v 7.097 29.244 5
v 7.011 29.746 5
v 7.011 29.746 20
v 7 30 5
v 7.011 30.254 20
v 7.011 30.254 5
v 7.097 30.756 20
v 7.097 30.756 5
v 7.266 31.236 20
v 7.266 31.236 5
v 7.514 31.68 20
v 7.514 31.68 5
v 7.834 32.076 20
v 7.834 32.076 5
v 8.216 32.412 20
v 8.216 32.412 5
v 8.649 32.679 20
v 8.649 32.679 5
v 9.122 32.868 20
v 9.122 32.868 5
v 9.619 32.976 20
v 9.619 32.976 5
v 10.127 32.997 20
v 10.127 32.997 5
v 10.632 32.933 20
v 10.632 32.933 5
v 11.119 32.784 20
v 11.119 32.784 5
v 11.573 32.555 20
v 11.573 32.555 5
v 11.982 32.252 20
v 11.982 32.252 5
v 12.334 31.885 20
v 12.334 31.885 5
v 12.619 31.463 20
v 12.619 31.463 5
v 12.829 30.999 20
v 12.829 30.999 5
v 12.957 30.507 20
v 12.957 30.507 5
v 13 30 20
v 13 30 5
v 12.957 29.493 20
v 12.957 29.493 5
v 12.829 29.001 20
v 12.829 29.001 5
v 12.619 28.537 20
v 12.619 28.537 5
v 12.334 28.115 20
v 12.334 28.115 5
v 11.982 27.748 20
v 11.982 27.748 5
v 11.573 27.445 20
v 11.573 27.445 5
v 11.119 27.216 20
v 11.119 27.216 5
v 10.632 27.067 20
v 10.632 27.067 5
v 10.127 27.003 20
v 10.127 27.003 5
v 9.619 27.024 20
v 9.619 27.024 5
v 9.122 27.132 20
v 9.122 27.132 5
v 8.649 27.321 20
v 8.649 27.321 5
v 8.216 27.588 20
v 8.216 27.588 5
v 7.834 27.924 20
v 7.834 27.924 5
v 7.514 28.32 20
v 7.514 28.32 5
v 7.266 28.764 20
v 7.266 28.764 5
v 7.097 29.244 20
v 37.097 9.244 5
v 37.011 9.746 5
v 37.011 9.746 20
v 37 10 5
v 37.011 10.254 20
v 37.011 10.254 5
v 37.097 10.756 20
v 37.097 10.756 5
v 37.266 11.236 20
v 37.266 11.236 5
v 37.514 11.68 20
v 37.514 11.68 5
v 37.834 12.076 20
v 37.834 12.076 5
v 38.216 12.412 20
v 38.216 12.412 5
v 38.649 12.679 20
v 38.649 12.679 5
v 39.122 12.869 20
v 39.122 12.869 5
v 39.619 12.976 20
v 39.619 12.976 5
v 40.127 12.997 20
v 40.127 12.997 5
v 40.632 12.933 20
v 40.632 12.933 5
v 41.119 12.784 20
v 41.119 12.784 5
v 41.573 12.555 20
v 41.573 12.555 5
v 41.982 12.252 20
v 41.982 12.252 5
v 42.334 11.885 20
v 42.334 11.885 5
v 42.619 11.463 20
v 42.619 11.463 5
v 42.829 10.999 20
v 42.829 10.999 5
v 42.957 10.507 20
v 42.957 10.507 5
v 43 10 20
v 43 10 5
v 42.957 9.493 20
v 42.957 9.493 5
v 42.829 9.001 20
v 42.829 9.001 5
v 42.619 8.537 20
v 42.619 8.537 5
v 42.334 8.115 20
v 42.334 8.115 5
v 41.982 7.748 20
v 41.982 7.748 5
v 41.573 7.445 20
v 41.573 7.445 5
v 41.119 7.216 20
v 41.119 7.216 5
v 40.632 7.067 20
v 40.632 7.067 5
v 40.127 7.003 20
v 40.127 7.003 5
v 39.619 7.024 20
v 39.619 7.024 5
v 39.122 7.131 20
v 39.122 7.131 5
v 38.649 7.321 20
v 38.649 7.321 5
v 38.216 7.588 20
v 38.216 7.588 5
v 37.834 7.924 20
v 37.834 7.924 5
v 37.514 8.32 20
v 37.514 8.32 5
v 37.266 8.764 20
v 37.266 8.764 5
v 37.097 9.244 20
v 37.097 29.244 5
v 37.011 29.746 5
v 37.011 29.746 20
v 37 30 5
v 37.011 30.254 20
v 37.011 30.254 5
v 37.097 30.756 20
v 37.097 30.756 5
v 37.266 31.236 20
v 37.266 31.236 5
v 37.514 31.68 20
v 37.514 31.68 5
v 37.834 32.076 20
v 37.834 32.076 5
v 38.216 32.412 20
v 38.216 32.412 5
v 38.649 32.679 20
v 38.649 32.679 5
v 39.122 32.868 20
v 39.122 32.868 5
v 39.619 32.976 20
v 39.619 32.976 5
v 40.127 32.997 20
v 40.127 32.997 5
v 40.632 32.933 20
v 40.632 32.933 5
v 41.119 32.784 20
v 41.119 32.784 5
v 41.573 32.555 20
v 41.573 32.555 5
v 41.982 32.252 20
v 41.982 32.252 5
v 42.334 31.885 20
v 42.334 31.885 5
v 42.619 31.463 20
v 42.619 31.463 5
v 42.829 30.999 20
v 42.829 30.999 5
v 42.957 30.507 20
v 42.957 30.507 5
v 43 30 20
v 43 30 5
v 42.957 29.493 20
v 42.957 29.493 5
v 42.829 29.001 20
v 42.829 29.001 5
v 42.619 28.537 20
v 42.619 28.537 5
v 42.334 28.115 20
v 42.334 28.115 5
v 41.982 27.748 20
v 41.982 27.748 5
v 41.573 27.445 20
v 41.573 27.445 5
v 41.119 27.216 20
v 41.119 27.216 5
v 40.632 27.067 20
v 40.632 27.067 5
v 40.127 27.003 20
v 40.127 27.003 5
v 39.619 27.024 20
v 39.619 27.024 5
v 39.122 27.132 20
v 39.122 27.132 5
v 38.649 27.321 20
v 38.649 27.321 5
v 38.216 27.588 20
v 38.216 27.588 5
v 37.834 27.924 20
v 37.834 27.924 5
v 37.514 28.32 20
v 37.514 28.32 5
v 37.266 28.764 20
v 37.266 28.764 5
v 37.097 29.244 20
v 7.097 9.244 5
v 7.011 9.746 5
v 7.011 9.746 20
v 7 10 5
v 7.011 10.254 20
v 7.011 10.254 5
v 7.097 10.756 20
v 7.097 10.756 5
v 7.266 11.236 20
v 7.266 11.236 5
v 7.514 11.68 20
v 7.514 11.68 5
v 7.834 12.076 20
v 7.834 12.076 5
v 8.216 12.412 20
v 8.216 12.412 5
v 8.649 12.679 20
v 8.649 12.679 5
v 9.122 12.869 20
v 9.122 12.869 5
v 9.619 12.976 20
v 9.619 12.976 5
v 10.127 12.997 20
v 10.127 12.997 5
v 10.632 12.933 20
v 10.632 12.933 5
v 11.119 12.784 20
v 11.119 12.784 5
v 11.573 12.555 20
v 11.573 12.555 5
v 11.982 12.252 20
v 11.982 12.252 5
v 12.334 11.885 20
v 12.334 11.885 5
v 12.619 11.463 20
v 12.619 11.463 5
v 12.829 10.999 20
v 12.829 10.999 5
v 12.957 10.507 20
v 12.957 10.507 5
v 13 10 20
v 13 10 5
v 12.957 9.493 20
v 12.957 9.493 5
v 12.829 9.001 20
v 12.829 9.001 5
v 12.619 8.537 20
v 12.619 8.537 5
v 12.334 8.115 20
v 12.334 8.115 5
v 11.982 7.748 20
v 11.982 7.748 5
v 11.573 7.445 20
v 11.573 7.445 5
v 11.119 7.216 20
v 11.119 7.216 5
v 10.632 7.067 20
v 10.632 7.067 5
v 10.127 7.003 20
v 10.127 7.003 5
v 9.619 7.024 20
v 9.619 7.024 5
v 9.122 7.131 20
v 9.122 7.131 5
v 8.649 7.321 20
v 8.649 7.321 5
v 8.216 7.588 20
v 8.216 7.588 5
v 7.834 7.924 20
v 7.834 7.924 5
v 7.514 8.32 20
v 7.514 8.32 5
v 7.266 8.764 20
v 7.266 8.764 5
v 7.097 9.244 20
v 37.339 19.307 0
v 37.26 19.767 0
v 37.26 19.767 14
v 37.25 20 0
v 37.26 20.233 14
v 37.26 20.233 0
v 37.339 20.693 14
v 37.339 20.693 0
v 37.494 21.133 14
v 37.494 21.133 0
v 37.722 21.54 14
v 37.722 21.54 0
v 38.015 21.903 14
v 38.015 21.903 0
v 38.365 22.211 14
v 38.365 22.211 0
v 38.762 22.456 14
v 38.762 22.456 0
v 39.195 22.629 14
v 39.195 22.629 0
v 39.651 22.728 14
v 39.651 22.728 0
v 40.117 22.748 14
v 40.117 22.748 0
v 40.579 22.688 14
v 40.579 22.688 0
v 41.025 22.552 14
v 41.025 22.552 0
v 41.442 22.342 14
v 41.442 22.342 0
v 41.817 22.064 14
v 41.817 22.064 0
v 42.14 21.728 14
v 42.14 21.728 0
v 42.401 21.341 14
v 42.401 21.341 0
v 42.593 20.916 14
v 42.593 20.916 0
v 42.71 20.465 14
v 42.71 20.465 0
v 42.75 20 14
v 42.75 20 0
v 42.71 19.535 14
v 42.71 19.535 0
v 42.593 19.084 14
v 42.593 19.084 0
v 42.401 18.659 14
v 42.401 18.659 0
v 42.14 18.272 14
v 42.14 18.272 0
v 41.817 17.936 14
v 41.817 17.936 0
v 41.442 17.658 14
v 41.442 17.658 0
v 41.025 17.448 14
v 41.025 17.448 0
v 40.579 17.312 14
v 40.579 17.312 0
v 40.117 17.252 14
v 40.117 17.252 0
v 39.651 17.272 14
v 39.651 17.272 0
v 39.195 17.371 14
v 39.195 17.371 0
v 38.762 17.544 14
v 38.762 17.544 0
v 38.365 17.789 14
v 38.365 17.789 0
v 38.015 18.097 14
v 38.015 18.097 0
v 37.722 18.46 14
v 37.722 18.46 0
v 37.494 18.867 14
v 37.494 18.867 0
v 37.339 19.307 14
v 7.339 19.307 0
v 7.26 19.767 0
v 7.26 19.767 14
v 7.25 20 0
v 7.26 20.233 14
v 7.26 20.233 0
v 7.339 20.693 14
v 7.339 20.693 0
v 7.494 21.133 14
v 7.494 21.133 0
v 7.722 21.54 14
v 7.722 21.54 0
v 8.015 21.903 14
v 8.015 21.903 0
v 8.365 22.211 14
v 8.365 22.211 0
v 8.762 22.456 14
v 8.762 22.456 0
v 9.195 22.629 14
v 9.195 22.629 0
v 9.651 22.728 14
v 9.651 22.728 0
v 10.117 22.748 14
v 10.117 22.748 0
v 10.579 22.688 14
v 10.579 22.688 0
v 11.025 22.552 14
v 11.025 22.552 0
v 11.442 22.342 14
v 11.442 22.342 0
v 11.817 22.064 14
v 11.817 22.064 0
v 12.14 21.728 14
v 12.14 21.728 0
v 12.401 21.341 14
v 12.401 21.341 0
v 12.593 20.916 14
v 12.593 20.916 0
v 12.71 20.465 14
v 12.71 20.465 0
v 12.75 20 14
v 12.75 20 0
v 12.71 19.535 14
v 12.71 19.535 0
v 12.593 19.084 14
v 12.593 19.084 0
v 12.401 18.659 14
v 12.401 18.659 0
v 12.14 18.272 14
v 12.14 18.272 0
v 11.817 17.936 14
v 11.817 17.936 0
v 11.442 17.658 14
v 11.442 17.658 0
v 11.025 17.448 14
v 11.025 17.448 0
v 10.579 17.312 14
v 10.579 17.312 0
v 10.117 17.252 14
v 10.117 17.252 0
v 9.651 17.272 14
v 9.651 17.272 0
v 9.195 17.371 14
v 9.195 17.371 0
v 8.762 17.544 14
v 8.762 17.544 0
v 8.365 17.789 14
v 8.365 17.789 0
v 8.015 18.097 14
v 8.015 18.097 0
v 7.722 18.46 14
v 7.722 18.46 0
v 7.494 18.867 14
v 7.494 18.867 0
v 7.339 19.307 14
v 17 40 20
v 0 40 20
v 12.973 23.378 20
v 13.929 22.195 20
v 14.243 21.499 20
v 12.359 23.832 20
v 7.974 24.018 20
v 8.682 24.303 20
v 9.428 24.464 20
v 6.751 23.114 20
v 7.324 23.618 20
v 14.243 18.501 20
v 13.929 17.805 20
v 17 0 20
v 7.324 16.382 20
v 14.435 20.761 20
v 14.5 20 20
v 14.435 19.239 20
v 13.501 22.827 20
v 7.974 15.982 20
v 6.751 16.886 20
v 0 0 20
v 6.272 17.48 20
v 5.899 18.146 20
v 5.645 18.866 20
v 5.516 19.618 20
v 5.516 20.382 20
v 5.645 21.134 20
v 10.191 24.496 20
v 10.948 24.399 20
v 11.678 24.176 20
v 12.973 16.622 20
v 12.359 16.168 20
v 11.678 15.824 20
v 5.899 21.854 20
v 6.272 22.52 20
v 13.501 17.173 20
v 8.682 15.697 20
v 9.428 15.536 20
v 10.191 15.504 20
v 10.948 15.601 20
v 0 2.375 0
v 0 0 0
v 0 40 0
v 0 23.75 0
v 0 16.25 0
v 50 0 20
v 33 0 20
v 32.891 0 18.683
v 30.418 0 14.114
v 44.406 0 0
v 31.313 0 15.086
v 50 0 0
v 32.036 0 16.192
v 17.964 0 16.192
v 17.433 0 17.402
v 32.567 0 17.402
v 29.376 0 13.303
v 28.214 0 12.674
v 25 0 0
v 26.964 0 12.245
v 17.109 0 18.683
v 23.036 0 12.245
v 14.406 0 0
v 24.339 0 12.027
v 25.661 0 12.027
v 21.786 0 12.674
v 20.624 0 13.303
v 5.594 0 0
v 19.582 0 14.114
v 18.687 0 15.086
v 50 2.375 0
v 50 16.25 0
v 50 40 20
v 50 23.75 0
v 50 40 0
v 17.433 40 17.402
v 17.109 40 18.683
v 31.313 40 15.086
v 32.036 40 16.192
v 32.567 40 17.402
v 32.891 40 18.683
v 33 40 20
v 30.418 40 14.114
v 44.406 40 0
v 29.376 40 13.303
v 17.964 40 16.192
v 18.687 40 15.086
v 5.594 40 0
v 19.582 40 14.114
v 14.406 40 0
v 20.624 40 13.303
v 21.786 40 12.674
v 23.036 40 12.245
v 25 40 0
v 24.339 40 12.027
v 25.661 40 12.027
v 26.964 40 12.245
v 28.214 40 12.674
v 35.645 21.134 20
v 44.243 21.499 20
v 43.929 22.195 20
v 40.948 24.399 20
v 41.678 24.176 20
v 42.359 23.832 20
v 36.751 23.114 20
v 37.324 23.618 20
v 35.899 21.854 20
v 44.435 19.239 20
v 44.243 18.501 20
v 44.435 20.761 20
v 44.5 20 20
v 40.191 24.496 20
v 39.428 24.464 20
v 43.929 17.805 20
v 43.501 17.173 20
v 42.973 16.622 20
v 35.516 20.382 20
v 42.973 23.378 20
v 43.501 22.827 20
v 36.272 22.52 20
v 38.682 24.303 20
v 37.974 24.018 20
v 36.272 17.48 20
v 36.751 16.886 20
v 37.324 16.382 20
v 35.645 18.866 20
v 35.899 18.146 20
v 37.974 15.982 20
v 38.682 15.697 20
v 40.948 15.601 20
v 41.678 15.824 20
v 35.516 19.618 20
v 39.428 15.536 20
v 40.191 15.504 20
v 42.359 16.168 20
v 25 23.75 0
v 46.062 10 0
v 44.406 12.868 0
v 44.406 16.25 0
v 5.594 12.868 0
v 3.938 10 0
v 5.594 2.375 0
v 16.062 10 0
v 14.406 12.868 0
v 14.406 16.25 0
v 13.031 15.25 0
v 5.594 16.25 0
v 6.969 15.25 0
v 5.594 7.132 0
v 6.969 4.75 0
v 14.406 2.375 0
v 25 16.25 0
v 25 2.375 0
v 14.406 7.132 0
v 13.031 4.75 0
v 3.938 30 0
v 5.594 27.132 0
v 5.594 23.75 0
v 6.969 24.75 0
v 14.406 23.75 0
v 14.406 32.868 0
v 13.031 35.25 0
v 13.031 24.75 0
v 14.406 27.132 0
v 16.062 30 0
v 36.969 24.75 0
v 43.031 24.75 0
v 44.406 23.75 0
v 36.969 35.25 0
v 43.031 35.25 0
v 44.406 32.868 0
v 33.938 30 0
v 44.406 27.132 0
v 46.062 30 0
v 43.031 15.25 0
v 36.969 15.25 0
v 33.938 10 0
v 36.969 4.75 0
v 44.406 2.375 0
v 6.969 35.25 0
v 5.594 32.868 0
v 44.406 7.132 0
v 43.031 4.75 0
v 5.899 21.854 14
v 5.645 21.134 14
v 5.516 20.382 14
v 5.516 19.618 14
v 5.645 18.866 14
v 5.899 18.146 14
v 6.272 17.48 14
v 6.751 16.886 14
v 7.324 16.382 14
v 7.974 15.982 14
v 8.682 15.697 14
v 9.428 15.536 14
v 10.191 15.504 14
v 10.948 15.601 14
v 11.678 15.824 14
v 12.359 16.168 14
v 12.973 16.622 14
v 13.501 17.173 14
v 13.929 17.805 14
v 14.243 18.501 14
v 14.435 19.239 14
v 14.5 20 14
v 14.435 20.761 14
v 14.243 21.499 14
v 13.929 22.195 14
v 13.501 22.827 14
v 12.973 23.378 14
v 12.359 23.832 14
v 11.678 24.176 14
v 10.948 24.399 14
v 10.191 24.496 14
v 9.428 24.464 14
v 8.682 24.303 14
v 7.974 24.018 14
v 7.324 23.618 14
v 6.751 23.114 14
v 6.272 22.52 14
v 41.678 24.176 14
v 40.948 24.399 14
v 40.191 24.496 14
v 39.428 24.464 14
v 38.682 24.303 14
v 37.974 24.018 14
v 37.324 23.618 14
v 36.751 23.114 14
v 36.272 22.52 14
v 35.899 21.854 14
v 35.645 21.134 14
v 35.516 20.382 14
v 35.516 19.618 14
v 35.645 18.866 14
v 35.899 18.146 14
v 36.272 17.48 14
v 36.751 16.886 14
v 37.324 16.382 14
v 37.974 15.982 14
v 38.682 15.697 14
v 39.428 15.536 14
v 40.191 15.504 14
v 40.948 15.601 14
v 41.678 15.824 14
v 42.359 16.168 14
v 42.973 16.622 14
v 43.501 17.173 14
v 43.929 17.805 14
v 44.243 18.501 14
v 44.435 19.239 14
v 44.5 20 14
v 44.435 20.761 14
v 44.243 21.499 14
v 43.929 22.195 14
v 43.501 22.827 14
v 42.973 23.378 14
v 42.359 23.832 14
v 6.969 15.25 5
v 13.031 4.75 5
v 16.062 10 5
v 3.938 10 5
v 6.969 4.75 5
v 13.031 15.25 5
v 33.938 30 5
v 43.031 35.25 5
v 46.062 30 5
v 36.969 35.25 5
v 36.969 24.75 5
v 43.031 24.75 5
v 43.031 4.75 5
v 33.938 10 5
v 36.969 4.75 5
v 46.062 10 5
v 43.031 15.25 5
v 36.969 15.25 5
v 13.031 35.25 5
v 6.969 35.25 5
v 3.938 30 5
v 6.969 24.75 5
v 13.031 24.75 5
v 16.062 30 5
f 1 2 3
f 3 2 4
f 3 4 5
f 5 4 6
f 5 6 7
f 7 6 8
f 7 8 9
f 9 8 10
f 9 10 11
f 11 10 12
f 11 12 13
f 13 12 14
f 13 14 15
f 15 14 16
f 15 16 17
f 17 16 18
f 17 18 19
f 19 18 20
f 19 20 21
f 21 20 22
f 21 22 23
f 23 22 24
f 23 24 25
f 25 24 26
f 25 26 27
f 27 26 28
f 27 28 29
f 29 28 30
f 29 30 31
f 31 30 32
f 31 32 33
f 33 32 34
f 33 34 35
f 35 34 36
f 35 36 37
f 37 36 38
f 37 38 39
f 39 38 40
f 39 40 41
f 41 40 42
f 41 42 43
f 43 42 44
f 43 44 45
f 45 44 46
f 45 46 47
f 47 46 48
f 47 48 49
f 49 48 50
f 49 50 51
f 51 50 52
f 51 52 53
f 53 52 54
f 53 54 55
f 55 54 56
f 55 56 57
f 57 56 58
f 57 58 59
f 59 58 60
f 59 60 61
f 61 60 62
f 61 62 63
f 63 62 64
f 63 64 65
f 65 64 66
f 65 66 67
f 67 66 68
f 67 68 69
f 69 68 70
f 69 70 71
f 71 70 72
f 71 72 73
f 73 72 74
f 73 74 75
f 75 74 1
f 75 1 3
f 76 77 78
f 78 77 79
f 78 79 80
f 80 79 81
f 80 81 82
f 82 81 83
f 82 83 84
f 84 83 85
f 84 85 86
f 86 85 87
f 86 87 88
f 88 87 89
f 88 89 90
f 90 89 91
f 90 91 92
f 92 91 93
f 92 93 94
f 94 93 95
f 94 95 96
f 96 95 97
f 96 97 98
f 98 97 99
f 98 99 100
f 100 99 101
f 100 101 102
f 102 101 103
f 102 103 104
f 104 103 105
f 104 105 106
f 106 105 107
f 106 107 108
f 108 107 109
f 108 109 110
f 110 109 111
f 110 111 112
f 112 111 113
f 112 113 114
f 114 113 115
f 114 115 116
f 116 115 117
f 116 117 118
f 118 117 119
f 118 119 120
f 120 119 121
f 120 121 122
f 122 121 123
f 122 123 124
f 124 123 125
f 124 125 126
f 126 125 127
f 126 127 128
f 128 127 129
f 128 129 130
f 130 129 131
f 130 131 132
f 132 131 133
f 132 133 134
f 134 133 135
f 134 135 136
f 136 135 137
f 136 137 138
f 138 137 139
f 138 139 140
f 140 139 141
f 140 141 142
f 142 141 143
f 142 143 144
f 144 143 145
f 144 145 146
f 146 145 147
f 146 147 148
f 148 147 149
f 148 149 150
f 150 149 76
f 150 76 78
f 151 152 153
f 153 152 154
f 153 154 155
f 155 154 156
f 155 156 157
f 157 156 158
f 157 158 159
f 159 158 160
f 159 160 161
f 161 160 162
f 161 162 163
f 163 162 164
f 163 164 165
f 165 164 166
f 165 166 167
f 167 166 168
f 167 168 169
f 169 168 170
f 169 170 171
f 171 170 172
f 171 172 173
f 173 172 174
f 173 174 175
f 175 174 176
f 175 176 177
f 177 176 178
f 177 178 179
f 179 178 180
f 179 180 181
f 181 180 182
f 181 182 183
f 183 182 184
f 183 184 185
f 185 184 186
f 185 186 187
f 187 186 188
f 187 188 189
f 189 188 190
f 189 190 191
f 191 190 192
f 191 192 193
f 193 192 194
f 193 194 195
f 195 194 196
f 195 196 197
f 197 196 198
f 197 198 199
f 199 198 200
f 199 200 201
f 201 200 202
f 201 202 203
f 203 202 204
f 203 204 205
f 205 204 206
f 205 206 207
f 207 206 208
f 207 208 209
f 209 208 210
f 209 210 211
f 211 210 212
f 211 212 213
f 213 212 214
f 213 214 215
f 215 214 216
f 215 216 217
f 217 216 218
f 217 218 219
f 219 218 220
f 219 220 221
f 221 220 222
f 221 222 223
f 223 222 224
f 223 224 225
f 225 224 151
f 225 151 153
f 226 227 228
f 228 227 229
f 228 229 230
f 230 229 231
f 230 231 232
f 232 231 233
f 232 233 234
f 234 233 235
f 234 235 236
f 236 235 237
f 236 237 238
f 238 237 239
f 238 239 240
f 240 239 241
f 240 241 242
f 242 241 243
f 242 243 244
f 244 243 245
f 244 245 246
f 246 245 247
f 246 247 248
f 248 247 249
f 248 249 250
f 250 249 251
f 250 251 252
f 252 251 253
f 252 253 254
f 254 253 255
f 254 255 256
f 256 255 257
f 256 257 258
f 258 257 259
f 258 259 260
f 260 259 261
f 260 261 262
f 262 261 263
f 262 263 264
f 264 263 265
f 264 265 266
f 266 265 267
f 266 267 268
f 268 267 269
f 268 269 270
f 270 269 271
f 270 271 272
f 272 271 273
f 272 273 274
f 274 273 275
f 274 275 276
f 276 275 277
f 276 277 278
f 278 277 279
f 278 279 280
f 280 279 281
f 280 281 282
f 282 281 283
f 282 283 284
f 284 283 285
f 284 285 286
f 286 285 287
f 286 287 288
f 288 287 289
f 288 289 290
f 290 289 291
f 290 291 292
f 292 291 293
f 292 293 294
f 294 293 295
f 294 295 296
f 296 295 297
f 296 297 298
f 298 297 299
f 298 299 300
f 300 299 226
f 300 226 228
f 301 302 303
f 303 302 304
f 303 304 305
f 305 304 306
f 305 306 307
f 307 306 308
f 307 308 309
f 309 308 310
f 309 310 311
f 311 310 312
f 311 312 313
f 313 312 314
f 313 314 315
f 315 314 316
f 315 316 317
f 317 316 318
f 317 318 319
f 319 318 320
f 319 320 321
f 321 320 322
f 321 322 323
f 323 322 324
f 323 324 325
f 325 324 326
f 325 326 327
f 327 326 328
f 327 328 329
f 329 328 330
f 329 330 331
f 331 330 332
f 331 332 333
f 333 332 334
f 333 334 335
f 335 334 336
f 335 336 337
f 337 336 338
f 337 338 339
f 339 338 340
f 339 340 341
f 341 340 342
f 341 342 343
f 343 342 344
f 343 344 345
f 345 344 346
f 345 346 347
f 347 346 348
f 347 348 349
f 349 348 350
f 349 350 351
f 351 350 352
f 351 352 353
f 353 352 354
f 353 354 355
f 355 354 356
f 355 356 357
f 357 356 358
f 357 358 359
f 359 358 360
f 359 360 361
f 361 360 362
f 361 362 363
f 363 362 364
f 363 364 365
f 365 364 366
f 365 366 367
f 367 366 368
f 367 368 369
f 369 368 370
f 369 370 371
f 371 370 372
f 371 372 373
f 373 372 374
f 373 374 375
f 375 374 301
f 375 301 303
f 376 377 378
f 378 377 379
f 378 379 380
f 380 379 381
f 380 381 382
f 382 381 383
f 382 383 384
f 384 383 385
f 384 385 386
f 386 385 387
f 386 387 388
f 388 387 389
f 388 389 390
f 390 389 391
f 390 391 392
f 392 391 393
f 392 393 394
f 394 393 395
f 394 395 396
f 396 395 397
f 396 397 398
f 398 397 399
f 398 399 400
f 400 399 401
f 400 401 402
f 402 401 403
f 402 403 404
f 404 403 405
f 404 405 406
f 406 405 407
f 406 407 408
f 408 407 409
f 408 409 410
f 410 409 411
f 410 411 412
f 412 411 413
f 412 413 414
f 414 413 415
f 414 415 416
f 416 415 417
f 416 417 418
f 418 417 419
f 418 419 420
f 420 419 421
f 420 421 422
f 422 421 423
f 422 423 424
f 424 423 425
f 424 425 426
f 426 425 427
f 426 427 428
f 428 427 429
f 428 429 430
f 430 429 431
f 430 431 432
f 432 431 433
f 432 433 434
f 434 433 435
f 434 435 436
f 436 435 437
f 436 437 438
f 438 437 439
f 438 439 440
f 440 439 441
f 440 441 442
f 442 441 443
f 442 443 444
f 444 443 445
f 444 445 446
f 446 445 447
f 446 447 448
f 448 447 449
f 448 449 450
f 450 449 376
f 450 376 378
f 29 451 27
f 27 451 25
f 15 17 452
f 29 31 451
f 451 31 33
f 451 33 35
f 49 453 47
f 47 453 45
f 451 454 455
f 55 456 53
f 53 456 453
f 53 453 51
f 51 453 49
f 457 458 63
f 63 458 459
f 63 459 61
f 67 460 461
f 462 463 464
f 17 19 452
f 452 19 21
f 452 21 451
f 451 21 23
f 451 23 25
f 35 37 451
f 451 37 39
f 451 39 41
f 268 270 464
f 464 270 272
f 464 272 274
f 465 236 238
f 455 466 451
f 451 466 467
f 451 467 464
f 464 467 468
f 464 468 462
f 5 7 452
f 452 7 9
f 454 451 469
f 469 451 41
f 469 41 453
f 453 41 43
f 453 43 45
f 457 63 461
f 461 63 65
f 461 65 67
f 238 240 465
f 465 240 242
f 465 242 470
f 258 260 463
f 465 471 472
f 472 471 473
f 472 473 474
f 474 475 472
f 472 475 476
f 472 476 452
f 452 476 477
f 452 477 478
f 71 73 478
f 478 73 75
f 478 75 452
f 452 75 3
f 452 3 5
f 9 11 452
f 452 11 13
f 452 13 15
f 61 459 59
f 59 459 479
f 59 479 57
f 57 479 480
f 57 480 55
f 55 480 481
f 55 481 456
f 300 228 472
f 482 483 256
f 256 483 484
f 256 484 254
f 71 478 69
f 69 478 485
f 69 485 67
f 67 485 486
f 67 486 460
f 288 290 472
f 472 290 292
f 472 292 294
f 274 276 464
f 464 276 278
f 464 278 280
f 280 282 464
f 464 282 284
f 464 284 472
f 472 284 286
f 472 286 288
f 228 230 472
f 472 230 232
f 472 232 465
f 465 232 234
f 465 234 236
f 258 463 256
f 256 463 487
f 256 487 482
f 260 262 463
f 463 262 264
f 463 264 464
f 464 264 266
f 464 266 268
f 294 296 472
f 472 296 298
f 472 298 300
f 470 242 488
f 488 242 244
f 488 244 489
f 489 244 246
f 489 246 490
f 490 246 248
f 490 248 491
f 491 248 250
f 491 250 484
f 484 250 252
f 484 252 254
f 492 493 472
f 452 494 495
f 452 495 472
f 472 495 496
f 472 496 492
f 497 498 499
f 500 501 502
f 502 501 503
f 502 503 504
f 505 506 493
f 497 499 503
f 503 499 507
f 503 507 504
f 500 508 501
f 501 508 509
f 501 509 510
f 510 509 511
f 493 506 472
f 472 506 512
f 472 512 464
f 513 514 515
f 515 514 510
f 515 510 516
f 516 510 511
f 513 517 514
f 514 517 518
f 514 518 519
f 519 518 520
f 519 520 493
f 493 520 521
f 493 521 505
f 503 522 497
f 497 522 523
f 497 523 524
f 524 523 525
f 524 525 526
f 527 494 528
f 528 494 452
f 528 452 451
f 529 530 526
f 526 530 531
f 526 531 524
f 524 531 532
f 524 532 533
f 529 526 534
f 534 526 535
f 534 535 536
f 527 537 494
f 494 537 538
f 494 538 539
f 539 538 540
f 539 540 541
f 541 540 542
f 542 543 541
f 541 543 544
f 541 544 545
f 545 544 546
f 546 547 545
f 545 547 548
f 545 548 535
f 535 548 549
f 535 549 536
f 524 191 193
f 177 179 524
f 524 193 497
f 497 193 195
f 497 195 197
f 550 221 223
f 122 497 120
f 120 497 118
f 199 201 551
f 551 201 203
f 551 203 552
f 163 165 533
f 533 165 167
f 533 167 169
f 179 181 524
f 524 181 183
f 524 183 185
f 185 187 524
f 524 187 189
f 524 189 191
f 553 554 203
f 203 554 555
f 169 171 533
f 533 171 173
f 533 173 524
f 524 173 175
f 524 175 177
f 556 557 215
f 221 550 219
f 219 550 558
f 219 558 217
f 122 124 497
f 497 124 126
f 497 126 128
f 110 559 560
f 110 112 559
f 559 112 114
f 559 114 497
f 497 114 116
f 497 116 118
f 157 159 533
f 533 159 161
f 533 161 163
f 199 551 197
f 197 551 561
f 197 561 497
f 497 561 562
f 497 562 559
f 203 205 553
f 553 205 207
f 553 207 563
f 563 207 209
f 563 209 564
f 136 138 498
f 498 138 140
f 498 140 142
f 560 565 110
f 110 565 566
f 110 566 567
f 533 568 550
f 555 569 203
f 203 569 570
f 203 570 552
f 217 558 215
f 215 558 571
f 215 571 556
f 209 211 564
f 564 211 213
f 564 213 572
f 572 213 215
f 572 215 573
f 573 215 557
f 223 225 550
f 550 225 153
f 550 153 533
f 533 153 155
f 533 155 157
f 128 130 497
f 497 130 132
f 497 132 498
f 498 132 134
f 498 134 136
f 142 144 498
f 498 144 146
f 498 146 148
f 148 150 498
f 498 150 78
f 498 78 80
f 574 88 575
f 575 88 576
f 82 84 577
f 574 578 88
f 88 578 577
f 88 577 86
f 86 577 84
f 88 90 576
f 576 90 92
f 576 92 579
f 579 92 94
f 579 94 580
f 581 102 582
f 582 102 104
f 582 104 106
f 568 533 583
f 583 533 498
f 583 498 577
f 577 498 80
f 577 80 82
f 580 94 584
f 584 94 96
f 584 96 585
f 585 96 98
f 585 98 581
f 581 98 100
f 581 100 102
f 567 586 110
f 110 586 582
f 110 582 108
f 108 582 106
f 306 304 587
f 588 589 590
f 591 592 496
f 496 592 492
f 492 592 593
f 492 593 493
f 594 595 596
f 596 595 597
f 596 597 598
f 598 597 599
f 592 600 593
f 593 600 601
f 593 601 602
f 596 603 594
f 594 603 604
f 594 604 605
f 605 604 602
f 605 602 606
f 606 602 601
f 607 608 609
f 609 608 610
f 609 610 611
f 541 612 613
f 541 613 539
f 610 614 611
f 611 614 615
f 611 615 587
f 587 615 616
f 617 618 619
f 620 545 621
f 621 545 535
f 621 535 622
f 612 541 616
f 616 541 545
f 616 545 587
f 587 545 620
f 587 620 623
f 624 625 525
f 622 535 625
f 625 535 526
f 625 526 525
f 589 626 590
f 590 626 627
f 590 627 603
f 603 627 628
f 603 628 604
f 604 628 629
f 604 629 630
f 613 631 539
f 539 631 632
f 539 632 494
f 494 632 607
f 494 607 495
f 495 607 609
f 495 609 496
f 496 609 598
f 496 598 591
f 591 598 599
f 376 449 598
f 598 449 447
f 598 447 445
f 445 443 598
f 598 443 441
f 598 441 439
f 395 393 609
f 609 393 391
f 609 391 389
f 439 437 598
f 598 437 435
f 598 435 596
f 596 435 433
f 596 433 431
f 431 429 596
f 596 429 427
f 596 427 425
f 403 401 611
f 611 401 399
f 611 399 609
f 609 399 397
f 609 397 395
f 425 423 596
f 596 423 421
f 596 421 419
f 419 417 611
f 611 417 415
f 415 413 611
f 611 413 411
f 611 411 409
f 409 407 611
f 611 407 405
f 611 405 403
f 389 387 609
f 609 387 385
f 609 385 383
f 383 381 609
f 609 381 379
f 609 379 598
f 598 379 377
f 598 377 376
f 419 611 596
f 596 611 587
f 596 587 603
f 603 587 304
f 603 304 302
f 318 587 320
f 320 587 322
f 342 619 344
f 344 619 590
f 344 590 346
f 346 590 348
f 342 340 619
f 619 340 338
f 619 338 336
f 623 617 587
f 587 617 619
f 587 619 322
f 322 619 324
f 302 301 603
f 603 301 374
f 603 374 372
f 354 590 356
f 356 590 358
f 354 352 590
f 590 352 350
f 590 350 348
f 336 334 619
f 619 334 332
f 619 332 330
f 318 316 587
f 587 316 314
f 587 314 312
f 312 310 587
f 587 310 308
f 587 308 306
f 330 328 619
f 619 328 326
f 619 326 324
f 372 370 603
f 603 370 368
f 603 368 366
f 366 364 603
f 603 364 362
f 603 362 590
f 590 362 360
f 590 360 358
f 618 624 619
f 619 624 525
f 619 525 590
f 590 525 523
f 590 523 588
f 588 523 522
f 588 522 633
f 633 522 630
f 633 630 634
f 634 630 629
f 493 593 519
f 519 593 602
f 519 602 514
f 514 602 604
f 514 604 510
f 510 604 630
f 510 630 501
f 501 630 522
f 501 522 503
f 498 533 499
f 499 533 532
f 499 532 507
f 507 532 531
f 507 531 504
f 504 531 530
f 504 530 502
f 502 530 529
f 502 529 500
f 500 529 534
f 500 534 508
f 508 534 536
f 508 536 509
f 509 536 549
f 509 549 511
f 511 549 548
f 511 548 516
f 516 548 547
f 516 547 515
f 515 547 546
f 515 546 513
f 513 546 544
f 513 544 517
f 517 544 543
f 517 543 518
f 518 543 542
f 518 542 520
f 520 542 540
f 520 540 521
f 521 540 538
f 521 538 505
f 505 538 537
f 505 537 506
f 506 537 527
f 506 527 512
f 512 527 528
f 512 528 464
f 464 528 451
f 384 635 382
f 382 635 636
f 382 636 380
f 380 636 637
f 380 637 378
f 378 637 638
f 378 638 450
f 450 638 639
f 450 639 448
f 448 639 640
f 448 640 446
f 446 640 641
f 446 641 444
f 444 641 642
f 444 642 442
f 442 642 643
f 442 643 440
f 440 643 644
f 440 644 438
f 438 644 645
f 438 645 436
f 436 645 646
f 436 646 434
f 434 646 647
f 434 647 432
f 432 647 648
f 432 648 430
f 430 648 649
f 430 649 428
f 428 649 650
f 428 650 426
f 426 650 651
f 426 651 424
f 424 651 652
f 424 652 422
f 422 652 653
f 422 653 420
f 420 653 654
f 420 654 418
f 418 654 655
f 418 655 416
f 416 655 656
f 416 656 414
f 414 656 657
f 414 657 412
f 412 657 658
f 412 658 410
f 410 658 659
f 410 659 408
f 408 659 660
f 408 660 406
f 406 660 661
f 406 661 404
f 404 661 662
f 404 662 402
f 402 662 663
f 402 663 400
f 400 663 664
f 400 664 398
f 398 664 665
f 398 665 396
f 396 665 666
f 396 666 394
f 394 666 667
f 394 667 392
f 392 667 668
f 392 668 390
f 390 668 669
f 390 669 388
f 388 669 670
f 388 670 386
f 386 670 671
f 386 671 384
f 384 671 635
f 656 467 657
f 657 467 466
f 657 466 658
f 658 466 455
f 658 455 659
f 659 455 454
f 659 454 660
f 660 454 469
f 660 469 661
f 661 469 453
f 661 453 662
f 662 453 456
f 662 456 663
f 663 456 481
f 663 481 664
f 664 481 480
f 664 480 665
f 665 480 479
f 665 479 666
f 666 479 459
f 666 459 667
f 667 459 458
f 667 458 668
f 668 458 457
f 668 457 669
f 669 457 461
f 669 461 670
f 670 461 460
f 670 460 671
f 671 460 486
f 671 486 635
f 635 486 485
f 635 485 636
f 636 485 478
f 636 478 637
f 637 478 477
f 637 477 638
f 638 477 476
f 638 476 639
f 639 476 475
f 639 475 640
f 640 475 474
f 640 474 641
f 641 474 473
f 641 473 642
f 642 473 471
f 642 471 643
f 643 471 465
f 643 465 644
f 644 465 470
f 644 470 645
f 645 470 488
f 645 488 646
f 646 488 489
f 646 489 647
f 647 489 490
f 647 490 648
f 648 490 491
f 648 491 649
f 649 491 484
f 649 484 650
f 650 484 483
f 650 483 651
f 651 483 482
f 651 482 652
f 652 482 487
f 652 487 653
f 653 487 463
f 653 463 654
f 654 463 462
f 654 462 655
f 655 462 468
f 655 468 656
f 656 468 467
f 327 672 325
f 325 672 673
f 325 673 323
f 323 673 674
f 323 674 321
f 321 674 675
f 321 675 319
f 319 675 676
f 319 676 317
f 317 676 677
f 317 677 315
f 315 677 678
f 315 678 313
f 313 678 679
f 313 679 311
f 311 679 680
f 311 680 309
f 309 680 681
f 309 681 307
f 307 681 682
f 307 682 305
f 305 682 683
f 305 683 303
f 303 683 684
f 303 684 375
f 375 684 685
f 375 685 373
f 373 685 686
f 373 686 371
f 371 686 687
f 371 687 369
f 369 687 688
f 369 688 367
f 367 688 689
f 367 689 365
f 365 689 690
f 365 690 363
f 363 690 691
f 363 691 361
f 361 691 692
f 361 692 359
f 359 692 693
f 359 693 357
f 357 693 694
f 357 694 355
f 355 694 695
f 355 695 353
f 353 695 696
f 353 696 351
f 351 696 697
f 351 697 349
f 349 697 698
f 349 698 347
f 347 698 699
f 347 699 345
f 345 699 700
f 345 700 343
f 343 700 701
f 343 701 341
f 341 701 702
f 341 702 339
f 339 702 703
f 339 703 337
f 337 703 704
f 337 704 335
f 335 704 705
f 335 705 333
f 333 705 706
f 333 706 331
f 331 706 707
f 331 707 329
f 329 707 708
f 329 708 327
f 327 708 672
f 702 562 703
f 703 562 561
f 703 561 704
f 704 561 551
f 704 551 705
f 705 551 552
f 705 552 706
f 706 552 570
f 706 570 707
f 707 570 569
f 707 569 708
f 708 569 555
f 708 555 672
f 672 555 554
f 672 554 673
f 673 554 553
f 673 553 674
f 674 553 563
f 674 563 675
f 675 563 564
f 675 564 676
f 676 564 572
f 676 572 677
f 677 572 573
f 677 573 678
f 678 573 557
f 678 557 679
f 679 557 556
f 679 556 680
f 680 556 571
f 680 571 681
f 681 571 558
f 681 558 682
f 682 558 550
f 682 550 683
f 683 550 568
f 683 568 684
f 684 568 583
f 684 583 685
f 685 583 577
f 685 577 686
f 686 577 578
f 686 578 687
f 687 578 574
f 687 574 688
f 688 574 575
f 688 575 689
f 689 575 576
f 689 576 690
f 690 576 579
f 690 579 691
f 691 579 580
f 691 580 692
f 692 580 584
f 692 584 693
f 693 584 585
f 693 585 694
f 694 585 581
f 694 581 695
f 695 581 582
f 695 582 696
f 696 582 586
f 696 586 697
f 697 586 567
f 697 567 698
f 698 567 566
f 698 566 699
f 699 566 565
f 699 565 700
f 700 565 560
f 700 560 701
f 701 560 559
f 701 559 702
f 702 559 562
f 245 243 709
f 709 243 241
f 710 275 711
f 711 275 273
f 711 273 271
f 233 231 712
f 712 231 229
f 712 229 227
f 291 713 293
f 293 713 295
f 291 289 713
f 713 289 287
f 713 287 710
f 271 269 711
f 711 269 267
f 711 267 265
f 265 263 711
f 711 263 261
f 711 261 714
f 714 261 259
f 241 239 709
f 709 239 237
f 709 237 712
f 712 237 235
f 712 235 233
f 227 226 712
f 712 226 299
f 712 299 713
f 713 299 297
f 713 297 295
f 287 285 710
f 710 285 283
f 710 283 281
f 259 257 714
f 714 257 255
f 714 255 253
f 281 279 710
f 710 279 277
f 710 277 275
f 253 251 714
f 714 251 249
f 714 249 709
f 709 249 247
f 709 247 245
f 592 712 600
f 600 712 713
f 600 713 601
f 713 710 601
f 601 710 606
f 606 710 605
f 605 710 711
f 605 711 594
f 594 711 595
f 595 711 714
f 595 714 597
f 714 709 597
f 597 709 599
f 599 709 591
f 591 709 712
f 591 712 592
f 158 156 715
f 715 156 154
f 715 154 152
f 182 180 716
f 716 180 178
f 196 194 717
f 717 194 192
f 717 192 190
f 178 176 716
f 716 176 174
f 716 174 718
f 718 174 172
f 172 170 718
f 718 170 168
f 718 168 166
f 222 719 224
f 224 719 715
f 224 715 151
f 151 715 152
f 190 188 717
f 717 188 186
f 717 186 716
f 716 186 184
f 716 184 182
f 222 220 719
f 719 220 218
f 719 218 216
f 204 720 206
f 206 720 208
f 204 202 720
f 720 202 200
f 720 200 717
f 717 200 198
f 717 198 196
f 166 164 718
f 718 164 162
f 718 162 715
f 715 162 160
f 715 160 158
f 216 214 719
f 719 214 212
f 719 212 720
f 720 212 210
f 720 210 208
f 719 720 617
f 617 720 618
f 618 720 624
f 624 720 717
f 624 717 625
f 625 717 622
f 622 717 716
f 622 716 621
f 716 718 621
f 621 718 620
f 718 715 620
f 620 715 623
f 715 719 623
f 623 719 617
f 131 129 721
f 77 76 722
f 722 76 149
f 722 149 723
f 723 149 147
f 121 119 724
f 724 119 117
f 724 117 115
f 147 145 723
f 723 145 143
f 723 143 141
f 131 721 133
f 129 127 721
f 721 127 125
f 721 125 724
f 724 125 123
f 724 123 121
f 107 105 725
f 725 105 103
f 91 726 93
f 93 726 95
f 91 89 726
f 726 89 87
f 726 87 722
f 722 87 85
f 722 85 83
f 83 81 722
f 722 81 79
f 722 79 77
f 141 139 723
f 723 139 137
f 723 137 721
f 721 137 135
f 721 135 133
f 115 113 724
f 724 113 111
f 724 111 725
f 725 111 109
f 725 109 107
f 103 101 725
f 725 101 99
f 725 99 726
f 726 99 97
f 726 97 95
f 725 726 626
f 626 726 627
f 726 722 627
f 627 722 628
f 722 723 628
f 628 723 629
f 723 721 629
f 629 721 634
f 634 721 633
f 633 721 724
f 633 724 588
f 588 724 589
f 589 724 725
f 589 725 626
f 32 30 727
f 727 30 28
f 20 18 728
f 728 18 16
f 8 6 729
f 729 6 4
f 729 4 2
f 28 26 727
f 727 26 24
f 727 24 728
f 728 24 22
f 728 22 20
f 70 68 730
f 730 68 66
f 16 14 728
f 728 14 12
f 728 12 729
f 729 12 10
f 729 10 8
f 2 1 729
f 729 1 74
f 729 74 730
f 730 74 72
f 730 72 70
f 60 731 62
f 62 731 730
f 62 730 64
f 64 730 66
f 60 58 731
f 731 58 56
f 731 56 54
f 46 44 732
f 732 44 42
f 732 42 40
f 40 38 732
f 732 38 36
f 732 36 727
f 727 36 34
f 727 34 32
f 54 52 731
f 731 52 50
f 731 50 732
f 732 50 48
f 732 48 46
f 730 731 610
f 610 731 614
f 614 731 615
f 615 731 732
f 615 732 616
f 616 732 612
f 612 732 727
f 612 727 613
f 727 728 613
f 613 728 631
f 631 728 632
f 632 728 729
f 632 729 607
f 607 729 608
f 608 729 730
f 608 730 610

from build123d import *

# Parameters (mm, degrees)
SKETCH1_W           = 50
SKETCH1_H           = 40
BOSS_EXTRUDE1_DEPTH = 20
SKETCH2_R           = 8
CUT_EXTRUDE1_DEPTH  = 43
SKETCH3_R           = 3
CUT_EXTRUDE2_DEPTH  = 43
SKETCH4_R           = 2.75
CUT_EXTRUDE3_DEPTH  = 50
SKETCH5_R           = 4.5
CUT_EXTRUDE4_DEPTH  = 6
CUT_EXTRUDE5_DEPTH  = 5


with BuildPart() as part:
    # Sketch1 → Boss-Extrude1 (new body)
    with BuildSketch(Plane.XY):
        with Locations((25, 20)):
            Rectangle(SKETCH1_W, SKETCH1_H)
    extrude(amount=BOSS_EXTRUDE1_DEPTH)

    # Sketch2 → Cut-Extrude1 (cut)
    with BuildSketch(Plane(origin=(0, 40, 0), x_dir=(1, 0, 0), z_dir=(0, 1, 0))):
        with Locations((25, -20)):
            Circle(SKETCH2_R)
    extrude(amount=-CUT_EXTRUDE1_DEPTH, mode=Mode.SUBTRACT)

    # Sketch3 → Cut-Extrude2 (cut)
    with BuildSketch(Plane.XY.offset(20)):
        with Locations((10, 30)):
            Circle(SKETCH3_R)
        with Locations((10, 10)):
            Circle(SKETCH3_R)
        with Locations((40, 30)):
            Circle(SKETCH3_R)
        with Locations((40, 10)):
            Circle(SKETCH3_R)
    extrude(amount=-CUT_EXTRUDE2_DEPTH, mode=Mode.SUBTRACT)

    # Sketch4 → Cut-Extrude3 (cut)
    with BuildSketch(Plane.XY.offset(20)):
        with Locations((10, 20)):
            Circle(SKETCH4_R)
        with Locations((40, 20)):
            Circle(SKETCH4_R)
    extrude(amount=-CUT_EXTRUDE3_DEPTH, mode=Mode.SUBTRACT)

    # Sketch5 → Cut-Extrude4 (cut)
    with BuildSketch(Plane.XY.offset(20)):
        with Locations((10, 20)):
            Circle(SKETCH5_R)
        with Locations((40, 20)):
            Circle(SKETCH5_R)
    extrude(amount=-CUT_EXTRUDE4_DEPTH, mode=Mode.SUBTRACT)

    # Sketch6 → Cut-Extrude5 (cut)
    with BuildSketch(Plane(origin=(0, 0, 0), x_dir=(-1, 0, 0), z_dir=(0, 0, -1))):
        Polygon((-3.937822174, 10), (-6.968911087, 15.25), (-13.031088913, 15.25), (-16.062177826, 10), (-13.031088913, 4.75), (-6.968911087, 4.75), align=None)
        Polygon((-43.031088913, 15.25), (-46.062177826, 10), (-43.031088913, 4.75), (-36.968911087, 4.75), (-33.937822174, 10), (-36.968911087, 15.25), align=None)
        Polygon((-36.968911087, 24.75), (-33.937822174, 30), (-36.968911087, 35.25), (-43.031088913, 35.25), (-46.062177826, 30), (-43.031088913, 24.75), align=None)
        Polygon((-6.968911087, 24.75), (-3.937822174, 30), (-6.968911087, 35.25), (-13.031088913, 35.25), (-16.062177826, 30), (-13.031088913, 24.75), align=None)
    extrude(amount=-CUT_EXTRUDE5_DEPTH, mode=Mode.SUBTRACT)


solid = part.part
